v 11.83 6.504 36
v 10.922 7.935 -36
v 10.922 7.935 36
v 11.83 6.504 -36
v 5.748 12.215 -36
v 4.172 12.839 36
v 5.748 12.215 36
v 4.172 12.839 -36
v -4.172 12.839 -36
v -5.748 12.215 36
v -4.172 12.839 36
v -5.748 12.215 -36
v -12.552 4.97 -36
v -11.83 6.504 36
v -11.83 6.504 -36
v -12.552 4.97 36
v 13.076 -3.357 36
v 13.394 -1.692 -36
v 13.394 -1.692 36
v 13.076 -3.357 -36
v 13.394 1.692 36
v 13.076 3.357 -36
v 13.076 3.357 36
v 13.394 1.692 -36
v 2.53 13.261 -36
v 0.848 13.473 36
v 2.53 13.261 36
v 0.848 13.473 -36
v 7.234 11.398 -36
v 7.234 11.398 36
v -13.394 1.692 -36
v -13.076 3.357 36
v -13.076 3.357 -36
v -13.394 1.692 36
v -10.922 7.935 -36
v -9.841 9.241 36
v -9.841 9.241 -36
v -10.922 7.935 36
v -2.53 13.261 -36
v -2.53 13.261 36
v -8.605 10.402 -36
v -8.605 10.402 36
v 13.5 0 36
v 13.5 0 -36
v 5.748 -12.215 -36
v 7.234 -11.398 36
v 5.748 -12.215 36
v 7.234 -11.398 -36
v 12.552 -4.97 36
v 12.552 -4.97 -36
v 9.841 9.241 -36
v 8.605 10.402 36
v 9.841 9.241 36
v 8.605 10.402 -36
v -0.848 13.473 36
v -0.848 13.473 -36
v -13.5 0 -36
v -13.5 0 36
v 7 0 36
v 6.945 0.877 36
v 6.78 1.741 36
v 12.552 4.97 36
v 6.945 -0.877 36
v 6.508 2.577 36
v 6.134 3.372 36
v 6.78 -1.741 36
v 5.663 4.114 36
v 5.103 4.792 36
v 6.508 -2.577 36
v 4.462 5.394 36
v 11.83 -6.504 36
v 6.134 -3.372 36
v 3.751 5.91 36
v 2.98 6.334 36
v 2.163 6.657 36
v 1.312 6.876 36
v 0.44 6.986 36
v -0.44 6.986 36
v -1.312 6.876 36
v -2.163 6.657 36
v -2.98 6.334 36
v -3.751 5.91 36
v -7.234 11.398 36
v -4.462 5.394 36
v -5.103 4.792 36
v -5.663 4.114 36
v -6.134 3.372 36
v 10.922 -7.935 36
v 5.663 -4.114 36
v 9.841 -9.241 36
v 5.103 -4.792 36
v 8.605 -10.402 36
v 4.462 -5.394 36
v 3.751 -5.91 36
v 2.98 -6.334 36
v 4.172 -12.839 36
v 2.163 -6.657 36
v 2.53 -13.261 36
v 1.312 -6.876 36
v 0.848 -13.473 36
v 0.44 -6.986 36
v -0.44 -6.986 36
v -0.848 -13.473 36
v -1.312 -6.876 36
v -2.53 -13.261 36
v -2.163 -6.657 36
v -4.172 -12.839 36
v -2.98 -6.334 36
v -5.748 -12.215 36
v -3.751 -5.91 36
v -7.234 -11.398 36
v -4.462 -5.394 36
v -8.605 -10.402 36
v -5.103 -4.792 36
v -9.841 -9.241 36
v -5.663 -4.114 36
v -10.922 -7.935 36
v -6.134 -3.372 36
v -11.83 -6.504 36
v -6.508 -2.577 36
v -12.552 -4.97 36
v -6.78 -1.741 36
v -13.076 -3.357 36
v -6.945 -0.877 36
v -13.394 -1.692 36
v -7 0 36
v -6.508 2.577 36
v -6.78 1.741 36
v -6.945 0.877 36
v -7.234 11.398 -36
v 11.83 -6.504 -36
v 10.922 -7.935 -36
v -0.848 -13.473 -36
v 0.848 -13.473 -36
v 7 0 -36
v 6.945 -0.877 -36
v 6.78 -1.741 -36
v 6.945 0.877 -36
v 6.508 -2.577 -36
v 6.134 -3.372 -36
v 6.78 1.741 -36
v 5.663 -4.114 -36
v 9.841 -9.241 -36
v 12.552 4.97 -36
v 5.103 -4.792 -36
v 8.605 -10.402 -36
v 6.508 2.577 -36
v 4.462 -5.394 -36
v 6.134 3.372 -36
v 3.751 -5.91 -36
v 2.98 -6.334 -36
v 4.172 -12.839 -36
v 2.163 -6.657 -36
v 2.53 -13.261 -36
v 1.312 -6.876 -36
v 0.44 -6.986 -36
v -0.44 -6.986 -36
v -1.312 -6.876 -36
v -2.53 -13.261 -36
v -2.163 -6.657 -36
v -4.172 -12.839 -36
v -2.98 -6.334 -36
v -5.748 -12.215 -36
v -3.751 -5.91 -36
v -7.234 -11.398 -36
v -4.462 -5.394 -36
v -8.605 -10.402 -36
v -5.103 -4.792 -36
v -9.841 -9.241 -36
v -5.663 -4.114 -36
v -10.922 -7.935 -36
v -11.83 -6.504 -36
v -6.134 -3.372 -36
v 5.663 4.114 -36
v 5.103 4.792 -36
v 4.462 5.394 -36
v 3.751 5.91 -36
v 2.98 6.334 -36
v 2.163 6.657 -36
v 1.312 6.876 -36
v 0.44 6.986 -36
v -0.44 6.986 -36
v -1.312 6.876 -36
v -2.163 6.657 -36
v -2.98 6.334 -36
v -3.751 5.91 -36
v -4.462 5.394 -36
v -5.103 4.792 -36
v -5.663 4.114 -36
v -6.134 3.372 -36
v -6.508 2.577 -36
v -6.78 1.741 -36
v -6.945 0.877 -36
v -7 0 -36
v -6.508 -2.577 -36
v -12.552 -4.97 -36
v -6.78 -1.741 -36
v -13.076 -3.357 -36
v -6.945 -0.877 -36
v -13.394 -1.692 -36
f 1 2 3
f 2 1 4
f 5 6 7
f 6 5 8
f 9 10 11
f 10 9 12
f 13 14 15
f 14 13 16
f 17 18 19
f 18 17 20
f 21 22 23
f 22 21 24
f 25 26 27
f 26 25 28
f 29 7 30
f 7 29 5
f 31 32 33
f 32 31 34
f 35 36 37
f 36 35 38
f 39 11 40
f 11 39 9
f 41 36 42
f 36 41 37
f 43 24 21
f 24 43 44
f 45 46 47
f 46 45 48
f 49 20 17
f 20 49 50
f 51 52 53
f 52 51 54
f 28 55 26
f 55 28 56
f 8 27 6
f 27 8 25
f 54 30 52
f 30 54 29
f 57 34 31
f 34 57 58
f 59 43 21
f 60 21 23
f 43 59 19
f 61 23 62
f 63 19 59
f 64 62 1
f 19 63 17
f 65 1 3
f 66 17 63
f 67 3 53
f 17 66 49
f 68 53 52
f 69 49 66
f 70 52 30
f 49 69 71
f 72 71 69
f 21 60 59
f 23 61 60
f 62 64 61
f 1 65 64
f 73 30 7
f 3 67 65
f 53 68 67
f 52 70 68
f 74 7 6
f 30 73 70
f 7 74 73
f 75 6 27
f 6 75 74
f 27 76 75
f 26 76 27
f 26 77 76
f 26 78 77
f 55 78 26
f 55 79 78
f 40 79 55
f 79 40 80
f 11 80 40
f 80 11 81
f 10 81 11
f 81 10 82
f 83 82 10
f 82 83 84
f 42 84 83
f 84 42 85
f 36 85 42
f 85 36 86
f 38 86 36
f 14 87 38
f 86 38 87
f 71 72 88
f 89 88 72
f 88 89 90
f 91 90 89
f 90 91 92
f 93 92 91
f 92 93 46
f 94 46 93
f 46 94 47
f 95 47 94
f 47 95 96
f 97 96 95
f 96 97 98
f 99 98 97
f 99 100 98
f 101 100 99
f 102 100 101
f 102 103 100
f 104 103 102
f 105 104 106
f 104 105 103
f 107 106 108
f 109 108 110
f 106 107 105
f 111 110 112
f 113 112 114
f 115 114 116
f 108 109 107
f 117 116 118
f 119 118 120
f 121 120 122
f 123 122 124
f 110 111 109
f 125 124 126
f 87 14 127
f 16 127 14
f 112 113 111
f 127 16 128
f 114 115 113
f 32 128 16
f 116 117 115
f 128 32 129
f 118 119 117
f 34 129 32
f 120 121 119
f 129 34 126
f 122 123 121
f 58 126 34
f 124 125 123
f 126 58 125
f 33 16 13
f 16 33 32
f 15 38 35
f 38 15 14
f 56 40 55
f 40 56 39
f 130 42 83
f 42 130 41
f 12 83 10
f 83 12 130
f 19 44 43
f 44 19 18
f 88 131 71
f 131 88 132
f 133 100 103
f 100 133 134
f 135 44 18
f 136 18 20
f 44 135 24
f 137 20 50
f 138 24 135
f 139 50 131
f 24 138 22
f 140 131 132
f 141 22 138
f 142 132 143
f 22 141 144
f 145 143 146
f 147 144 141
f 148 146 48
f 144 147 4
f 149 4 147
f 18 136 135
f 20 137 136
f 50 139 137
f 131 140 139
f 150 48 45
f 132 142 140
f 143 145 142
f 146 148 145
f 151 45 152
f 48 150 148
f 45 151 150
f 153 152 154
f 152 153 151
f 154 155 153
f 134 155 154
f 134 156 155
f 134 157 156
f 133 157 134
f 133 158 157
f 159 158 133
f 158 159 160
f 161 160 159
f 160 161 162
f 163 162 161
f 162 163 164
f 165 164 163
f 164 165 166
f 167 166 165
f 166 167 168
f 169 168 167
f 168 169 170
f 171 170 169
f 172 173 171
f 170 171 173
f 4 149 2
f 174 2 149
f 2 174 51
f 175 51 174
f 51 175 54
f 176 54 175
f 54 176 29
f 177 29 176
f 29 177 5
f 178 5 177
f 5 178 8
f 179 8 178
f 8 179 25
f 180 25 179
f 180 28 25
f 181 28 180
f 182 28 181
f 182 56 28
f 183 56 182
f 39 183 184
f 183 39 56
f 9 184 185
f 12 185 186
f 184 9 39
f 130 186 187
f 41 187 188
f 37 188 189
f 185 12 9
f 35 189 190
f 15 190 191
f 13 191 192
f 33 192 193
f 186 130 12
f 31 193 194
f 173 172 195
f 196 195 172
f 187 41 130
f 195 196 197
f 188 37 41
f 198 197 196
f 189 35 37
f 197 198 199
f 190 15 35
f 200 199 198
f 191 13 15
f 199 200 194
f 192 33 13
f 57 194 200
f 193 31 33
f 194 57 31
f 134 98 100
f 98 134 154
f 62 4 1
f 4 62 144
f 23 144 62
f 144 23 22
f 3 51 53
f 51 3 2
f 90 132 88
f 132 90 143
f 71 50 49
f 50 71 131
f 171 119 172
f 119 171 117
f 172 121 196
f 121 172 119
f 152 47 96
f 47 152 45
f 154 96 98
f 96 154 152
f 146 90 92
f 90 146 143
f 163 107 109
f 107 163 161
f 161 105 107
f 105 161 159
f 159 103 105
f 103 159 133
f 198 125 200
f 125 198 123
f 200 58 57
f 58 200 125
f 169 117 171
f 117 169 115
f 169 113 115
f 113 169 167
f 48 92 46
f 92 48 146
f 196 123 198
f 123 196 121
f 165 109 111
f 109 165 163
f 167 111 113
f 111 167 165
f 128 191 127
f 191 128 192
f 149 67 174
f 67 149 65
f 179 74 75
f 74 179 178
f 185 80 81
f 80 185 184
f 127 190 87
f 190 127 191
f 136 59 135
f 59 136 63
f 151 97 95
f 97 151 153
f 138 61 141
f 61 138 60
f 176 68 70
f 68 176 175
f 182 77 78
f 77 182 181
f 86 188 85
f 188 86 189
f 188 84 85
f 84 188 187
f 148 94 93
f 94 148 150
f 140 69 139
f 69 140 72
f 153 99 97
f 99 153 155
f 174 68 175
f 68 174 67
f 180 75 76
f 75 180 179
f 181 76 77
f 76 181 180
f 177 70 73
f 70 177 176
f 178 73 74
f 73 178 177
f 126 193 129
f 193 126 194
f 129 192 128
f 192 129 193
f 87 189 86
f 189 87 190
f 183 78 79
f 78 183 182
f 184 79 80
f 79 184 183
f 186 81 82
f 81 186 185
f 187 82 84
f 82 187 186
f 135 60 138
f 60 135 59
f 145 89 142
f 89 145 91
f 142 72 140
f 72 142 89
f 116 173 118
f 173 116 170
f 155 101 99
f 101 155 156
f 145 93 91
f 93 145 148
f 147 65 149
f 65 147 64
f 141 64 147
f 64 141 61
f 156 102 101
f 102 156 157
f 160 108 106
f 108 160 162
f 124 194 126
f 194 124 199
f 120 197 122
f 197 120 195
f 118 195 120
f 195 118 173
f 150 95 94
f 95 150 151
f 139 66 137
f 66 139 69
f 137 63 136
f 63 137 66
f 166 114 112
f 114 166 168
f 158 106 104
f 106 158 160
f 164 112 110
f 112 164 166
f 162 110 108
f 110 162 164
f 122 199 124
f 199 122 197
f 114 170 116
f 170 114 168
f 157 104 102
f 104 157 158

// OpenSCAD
$fn = 50;


difference() {
	union() {
		translate(v = [0, 0, -36.0000000000]) {
			cylinder(h = 72, r = 13.5000000000);
		}
	}
	union() {
		translate(v = [0, 0, -100.0000000000]) {
			cylinder(h = 200, r = 7);
		}
	}
}
